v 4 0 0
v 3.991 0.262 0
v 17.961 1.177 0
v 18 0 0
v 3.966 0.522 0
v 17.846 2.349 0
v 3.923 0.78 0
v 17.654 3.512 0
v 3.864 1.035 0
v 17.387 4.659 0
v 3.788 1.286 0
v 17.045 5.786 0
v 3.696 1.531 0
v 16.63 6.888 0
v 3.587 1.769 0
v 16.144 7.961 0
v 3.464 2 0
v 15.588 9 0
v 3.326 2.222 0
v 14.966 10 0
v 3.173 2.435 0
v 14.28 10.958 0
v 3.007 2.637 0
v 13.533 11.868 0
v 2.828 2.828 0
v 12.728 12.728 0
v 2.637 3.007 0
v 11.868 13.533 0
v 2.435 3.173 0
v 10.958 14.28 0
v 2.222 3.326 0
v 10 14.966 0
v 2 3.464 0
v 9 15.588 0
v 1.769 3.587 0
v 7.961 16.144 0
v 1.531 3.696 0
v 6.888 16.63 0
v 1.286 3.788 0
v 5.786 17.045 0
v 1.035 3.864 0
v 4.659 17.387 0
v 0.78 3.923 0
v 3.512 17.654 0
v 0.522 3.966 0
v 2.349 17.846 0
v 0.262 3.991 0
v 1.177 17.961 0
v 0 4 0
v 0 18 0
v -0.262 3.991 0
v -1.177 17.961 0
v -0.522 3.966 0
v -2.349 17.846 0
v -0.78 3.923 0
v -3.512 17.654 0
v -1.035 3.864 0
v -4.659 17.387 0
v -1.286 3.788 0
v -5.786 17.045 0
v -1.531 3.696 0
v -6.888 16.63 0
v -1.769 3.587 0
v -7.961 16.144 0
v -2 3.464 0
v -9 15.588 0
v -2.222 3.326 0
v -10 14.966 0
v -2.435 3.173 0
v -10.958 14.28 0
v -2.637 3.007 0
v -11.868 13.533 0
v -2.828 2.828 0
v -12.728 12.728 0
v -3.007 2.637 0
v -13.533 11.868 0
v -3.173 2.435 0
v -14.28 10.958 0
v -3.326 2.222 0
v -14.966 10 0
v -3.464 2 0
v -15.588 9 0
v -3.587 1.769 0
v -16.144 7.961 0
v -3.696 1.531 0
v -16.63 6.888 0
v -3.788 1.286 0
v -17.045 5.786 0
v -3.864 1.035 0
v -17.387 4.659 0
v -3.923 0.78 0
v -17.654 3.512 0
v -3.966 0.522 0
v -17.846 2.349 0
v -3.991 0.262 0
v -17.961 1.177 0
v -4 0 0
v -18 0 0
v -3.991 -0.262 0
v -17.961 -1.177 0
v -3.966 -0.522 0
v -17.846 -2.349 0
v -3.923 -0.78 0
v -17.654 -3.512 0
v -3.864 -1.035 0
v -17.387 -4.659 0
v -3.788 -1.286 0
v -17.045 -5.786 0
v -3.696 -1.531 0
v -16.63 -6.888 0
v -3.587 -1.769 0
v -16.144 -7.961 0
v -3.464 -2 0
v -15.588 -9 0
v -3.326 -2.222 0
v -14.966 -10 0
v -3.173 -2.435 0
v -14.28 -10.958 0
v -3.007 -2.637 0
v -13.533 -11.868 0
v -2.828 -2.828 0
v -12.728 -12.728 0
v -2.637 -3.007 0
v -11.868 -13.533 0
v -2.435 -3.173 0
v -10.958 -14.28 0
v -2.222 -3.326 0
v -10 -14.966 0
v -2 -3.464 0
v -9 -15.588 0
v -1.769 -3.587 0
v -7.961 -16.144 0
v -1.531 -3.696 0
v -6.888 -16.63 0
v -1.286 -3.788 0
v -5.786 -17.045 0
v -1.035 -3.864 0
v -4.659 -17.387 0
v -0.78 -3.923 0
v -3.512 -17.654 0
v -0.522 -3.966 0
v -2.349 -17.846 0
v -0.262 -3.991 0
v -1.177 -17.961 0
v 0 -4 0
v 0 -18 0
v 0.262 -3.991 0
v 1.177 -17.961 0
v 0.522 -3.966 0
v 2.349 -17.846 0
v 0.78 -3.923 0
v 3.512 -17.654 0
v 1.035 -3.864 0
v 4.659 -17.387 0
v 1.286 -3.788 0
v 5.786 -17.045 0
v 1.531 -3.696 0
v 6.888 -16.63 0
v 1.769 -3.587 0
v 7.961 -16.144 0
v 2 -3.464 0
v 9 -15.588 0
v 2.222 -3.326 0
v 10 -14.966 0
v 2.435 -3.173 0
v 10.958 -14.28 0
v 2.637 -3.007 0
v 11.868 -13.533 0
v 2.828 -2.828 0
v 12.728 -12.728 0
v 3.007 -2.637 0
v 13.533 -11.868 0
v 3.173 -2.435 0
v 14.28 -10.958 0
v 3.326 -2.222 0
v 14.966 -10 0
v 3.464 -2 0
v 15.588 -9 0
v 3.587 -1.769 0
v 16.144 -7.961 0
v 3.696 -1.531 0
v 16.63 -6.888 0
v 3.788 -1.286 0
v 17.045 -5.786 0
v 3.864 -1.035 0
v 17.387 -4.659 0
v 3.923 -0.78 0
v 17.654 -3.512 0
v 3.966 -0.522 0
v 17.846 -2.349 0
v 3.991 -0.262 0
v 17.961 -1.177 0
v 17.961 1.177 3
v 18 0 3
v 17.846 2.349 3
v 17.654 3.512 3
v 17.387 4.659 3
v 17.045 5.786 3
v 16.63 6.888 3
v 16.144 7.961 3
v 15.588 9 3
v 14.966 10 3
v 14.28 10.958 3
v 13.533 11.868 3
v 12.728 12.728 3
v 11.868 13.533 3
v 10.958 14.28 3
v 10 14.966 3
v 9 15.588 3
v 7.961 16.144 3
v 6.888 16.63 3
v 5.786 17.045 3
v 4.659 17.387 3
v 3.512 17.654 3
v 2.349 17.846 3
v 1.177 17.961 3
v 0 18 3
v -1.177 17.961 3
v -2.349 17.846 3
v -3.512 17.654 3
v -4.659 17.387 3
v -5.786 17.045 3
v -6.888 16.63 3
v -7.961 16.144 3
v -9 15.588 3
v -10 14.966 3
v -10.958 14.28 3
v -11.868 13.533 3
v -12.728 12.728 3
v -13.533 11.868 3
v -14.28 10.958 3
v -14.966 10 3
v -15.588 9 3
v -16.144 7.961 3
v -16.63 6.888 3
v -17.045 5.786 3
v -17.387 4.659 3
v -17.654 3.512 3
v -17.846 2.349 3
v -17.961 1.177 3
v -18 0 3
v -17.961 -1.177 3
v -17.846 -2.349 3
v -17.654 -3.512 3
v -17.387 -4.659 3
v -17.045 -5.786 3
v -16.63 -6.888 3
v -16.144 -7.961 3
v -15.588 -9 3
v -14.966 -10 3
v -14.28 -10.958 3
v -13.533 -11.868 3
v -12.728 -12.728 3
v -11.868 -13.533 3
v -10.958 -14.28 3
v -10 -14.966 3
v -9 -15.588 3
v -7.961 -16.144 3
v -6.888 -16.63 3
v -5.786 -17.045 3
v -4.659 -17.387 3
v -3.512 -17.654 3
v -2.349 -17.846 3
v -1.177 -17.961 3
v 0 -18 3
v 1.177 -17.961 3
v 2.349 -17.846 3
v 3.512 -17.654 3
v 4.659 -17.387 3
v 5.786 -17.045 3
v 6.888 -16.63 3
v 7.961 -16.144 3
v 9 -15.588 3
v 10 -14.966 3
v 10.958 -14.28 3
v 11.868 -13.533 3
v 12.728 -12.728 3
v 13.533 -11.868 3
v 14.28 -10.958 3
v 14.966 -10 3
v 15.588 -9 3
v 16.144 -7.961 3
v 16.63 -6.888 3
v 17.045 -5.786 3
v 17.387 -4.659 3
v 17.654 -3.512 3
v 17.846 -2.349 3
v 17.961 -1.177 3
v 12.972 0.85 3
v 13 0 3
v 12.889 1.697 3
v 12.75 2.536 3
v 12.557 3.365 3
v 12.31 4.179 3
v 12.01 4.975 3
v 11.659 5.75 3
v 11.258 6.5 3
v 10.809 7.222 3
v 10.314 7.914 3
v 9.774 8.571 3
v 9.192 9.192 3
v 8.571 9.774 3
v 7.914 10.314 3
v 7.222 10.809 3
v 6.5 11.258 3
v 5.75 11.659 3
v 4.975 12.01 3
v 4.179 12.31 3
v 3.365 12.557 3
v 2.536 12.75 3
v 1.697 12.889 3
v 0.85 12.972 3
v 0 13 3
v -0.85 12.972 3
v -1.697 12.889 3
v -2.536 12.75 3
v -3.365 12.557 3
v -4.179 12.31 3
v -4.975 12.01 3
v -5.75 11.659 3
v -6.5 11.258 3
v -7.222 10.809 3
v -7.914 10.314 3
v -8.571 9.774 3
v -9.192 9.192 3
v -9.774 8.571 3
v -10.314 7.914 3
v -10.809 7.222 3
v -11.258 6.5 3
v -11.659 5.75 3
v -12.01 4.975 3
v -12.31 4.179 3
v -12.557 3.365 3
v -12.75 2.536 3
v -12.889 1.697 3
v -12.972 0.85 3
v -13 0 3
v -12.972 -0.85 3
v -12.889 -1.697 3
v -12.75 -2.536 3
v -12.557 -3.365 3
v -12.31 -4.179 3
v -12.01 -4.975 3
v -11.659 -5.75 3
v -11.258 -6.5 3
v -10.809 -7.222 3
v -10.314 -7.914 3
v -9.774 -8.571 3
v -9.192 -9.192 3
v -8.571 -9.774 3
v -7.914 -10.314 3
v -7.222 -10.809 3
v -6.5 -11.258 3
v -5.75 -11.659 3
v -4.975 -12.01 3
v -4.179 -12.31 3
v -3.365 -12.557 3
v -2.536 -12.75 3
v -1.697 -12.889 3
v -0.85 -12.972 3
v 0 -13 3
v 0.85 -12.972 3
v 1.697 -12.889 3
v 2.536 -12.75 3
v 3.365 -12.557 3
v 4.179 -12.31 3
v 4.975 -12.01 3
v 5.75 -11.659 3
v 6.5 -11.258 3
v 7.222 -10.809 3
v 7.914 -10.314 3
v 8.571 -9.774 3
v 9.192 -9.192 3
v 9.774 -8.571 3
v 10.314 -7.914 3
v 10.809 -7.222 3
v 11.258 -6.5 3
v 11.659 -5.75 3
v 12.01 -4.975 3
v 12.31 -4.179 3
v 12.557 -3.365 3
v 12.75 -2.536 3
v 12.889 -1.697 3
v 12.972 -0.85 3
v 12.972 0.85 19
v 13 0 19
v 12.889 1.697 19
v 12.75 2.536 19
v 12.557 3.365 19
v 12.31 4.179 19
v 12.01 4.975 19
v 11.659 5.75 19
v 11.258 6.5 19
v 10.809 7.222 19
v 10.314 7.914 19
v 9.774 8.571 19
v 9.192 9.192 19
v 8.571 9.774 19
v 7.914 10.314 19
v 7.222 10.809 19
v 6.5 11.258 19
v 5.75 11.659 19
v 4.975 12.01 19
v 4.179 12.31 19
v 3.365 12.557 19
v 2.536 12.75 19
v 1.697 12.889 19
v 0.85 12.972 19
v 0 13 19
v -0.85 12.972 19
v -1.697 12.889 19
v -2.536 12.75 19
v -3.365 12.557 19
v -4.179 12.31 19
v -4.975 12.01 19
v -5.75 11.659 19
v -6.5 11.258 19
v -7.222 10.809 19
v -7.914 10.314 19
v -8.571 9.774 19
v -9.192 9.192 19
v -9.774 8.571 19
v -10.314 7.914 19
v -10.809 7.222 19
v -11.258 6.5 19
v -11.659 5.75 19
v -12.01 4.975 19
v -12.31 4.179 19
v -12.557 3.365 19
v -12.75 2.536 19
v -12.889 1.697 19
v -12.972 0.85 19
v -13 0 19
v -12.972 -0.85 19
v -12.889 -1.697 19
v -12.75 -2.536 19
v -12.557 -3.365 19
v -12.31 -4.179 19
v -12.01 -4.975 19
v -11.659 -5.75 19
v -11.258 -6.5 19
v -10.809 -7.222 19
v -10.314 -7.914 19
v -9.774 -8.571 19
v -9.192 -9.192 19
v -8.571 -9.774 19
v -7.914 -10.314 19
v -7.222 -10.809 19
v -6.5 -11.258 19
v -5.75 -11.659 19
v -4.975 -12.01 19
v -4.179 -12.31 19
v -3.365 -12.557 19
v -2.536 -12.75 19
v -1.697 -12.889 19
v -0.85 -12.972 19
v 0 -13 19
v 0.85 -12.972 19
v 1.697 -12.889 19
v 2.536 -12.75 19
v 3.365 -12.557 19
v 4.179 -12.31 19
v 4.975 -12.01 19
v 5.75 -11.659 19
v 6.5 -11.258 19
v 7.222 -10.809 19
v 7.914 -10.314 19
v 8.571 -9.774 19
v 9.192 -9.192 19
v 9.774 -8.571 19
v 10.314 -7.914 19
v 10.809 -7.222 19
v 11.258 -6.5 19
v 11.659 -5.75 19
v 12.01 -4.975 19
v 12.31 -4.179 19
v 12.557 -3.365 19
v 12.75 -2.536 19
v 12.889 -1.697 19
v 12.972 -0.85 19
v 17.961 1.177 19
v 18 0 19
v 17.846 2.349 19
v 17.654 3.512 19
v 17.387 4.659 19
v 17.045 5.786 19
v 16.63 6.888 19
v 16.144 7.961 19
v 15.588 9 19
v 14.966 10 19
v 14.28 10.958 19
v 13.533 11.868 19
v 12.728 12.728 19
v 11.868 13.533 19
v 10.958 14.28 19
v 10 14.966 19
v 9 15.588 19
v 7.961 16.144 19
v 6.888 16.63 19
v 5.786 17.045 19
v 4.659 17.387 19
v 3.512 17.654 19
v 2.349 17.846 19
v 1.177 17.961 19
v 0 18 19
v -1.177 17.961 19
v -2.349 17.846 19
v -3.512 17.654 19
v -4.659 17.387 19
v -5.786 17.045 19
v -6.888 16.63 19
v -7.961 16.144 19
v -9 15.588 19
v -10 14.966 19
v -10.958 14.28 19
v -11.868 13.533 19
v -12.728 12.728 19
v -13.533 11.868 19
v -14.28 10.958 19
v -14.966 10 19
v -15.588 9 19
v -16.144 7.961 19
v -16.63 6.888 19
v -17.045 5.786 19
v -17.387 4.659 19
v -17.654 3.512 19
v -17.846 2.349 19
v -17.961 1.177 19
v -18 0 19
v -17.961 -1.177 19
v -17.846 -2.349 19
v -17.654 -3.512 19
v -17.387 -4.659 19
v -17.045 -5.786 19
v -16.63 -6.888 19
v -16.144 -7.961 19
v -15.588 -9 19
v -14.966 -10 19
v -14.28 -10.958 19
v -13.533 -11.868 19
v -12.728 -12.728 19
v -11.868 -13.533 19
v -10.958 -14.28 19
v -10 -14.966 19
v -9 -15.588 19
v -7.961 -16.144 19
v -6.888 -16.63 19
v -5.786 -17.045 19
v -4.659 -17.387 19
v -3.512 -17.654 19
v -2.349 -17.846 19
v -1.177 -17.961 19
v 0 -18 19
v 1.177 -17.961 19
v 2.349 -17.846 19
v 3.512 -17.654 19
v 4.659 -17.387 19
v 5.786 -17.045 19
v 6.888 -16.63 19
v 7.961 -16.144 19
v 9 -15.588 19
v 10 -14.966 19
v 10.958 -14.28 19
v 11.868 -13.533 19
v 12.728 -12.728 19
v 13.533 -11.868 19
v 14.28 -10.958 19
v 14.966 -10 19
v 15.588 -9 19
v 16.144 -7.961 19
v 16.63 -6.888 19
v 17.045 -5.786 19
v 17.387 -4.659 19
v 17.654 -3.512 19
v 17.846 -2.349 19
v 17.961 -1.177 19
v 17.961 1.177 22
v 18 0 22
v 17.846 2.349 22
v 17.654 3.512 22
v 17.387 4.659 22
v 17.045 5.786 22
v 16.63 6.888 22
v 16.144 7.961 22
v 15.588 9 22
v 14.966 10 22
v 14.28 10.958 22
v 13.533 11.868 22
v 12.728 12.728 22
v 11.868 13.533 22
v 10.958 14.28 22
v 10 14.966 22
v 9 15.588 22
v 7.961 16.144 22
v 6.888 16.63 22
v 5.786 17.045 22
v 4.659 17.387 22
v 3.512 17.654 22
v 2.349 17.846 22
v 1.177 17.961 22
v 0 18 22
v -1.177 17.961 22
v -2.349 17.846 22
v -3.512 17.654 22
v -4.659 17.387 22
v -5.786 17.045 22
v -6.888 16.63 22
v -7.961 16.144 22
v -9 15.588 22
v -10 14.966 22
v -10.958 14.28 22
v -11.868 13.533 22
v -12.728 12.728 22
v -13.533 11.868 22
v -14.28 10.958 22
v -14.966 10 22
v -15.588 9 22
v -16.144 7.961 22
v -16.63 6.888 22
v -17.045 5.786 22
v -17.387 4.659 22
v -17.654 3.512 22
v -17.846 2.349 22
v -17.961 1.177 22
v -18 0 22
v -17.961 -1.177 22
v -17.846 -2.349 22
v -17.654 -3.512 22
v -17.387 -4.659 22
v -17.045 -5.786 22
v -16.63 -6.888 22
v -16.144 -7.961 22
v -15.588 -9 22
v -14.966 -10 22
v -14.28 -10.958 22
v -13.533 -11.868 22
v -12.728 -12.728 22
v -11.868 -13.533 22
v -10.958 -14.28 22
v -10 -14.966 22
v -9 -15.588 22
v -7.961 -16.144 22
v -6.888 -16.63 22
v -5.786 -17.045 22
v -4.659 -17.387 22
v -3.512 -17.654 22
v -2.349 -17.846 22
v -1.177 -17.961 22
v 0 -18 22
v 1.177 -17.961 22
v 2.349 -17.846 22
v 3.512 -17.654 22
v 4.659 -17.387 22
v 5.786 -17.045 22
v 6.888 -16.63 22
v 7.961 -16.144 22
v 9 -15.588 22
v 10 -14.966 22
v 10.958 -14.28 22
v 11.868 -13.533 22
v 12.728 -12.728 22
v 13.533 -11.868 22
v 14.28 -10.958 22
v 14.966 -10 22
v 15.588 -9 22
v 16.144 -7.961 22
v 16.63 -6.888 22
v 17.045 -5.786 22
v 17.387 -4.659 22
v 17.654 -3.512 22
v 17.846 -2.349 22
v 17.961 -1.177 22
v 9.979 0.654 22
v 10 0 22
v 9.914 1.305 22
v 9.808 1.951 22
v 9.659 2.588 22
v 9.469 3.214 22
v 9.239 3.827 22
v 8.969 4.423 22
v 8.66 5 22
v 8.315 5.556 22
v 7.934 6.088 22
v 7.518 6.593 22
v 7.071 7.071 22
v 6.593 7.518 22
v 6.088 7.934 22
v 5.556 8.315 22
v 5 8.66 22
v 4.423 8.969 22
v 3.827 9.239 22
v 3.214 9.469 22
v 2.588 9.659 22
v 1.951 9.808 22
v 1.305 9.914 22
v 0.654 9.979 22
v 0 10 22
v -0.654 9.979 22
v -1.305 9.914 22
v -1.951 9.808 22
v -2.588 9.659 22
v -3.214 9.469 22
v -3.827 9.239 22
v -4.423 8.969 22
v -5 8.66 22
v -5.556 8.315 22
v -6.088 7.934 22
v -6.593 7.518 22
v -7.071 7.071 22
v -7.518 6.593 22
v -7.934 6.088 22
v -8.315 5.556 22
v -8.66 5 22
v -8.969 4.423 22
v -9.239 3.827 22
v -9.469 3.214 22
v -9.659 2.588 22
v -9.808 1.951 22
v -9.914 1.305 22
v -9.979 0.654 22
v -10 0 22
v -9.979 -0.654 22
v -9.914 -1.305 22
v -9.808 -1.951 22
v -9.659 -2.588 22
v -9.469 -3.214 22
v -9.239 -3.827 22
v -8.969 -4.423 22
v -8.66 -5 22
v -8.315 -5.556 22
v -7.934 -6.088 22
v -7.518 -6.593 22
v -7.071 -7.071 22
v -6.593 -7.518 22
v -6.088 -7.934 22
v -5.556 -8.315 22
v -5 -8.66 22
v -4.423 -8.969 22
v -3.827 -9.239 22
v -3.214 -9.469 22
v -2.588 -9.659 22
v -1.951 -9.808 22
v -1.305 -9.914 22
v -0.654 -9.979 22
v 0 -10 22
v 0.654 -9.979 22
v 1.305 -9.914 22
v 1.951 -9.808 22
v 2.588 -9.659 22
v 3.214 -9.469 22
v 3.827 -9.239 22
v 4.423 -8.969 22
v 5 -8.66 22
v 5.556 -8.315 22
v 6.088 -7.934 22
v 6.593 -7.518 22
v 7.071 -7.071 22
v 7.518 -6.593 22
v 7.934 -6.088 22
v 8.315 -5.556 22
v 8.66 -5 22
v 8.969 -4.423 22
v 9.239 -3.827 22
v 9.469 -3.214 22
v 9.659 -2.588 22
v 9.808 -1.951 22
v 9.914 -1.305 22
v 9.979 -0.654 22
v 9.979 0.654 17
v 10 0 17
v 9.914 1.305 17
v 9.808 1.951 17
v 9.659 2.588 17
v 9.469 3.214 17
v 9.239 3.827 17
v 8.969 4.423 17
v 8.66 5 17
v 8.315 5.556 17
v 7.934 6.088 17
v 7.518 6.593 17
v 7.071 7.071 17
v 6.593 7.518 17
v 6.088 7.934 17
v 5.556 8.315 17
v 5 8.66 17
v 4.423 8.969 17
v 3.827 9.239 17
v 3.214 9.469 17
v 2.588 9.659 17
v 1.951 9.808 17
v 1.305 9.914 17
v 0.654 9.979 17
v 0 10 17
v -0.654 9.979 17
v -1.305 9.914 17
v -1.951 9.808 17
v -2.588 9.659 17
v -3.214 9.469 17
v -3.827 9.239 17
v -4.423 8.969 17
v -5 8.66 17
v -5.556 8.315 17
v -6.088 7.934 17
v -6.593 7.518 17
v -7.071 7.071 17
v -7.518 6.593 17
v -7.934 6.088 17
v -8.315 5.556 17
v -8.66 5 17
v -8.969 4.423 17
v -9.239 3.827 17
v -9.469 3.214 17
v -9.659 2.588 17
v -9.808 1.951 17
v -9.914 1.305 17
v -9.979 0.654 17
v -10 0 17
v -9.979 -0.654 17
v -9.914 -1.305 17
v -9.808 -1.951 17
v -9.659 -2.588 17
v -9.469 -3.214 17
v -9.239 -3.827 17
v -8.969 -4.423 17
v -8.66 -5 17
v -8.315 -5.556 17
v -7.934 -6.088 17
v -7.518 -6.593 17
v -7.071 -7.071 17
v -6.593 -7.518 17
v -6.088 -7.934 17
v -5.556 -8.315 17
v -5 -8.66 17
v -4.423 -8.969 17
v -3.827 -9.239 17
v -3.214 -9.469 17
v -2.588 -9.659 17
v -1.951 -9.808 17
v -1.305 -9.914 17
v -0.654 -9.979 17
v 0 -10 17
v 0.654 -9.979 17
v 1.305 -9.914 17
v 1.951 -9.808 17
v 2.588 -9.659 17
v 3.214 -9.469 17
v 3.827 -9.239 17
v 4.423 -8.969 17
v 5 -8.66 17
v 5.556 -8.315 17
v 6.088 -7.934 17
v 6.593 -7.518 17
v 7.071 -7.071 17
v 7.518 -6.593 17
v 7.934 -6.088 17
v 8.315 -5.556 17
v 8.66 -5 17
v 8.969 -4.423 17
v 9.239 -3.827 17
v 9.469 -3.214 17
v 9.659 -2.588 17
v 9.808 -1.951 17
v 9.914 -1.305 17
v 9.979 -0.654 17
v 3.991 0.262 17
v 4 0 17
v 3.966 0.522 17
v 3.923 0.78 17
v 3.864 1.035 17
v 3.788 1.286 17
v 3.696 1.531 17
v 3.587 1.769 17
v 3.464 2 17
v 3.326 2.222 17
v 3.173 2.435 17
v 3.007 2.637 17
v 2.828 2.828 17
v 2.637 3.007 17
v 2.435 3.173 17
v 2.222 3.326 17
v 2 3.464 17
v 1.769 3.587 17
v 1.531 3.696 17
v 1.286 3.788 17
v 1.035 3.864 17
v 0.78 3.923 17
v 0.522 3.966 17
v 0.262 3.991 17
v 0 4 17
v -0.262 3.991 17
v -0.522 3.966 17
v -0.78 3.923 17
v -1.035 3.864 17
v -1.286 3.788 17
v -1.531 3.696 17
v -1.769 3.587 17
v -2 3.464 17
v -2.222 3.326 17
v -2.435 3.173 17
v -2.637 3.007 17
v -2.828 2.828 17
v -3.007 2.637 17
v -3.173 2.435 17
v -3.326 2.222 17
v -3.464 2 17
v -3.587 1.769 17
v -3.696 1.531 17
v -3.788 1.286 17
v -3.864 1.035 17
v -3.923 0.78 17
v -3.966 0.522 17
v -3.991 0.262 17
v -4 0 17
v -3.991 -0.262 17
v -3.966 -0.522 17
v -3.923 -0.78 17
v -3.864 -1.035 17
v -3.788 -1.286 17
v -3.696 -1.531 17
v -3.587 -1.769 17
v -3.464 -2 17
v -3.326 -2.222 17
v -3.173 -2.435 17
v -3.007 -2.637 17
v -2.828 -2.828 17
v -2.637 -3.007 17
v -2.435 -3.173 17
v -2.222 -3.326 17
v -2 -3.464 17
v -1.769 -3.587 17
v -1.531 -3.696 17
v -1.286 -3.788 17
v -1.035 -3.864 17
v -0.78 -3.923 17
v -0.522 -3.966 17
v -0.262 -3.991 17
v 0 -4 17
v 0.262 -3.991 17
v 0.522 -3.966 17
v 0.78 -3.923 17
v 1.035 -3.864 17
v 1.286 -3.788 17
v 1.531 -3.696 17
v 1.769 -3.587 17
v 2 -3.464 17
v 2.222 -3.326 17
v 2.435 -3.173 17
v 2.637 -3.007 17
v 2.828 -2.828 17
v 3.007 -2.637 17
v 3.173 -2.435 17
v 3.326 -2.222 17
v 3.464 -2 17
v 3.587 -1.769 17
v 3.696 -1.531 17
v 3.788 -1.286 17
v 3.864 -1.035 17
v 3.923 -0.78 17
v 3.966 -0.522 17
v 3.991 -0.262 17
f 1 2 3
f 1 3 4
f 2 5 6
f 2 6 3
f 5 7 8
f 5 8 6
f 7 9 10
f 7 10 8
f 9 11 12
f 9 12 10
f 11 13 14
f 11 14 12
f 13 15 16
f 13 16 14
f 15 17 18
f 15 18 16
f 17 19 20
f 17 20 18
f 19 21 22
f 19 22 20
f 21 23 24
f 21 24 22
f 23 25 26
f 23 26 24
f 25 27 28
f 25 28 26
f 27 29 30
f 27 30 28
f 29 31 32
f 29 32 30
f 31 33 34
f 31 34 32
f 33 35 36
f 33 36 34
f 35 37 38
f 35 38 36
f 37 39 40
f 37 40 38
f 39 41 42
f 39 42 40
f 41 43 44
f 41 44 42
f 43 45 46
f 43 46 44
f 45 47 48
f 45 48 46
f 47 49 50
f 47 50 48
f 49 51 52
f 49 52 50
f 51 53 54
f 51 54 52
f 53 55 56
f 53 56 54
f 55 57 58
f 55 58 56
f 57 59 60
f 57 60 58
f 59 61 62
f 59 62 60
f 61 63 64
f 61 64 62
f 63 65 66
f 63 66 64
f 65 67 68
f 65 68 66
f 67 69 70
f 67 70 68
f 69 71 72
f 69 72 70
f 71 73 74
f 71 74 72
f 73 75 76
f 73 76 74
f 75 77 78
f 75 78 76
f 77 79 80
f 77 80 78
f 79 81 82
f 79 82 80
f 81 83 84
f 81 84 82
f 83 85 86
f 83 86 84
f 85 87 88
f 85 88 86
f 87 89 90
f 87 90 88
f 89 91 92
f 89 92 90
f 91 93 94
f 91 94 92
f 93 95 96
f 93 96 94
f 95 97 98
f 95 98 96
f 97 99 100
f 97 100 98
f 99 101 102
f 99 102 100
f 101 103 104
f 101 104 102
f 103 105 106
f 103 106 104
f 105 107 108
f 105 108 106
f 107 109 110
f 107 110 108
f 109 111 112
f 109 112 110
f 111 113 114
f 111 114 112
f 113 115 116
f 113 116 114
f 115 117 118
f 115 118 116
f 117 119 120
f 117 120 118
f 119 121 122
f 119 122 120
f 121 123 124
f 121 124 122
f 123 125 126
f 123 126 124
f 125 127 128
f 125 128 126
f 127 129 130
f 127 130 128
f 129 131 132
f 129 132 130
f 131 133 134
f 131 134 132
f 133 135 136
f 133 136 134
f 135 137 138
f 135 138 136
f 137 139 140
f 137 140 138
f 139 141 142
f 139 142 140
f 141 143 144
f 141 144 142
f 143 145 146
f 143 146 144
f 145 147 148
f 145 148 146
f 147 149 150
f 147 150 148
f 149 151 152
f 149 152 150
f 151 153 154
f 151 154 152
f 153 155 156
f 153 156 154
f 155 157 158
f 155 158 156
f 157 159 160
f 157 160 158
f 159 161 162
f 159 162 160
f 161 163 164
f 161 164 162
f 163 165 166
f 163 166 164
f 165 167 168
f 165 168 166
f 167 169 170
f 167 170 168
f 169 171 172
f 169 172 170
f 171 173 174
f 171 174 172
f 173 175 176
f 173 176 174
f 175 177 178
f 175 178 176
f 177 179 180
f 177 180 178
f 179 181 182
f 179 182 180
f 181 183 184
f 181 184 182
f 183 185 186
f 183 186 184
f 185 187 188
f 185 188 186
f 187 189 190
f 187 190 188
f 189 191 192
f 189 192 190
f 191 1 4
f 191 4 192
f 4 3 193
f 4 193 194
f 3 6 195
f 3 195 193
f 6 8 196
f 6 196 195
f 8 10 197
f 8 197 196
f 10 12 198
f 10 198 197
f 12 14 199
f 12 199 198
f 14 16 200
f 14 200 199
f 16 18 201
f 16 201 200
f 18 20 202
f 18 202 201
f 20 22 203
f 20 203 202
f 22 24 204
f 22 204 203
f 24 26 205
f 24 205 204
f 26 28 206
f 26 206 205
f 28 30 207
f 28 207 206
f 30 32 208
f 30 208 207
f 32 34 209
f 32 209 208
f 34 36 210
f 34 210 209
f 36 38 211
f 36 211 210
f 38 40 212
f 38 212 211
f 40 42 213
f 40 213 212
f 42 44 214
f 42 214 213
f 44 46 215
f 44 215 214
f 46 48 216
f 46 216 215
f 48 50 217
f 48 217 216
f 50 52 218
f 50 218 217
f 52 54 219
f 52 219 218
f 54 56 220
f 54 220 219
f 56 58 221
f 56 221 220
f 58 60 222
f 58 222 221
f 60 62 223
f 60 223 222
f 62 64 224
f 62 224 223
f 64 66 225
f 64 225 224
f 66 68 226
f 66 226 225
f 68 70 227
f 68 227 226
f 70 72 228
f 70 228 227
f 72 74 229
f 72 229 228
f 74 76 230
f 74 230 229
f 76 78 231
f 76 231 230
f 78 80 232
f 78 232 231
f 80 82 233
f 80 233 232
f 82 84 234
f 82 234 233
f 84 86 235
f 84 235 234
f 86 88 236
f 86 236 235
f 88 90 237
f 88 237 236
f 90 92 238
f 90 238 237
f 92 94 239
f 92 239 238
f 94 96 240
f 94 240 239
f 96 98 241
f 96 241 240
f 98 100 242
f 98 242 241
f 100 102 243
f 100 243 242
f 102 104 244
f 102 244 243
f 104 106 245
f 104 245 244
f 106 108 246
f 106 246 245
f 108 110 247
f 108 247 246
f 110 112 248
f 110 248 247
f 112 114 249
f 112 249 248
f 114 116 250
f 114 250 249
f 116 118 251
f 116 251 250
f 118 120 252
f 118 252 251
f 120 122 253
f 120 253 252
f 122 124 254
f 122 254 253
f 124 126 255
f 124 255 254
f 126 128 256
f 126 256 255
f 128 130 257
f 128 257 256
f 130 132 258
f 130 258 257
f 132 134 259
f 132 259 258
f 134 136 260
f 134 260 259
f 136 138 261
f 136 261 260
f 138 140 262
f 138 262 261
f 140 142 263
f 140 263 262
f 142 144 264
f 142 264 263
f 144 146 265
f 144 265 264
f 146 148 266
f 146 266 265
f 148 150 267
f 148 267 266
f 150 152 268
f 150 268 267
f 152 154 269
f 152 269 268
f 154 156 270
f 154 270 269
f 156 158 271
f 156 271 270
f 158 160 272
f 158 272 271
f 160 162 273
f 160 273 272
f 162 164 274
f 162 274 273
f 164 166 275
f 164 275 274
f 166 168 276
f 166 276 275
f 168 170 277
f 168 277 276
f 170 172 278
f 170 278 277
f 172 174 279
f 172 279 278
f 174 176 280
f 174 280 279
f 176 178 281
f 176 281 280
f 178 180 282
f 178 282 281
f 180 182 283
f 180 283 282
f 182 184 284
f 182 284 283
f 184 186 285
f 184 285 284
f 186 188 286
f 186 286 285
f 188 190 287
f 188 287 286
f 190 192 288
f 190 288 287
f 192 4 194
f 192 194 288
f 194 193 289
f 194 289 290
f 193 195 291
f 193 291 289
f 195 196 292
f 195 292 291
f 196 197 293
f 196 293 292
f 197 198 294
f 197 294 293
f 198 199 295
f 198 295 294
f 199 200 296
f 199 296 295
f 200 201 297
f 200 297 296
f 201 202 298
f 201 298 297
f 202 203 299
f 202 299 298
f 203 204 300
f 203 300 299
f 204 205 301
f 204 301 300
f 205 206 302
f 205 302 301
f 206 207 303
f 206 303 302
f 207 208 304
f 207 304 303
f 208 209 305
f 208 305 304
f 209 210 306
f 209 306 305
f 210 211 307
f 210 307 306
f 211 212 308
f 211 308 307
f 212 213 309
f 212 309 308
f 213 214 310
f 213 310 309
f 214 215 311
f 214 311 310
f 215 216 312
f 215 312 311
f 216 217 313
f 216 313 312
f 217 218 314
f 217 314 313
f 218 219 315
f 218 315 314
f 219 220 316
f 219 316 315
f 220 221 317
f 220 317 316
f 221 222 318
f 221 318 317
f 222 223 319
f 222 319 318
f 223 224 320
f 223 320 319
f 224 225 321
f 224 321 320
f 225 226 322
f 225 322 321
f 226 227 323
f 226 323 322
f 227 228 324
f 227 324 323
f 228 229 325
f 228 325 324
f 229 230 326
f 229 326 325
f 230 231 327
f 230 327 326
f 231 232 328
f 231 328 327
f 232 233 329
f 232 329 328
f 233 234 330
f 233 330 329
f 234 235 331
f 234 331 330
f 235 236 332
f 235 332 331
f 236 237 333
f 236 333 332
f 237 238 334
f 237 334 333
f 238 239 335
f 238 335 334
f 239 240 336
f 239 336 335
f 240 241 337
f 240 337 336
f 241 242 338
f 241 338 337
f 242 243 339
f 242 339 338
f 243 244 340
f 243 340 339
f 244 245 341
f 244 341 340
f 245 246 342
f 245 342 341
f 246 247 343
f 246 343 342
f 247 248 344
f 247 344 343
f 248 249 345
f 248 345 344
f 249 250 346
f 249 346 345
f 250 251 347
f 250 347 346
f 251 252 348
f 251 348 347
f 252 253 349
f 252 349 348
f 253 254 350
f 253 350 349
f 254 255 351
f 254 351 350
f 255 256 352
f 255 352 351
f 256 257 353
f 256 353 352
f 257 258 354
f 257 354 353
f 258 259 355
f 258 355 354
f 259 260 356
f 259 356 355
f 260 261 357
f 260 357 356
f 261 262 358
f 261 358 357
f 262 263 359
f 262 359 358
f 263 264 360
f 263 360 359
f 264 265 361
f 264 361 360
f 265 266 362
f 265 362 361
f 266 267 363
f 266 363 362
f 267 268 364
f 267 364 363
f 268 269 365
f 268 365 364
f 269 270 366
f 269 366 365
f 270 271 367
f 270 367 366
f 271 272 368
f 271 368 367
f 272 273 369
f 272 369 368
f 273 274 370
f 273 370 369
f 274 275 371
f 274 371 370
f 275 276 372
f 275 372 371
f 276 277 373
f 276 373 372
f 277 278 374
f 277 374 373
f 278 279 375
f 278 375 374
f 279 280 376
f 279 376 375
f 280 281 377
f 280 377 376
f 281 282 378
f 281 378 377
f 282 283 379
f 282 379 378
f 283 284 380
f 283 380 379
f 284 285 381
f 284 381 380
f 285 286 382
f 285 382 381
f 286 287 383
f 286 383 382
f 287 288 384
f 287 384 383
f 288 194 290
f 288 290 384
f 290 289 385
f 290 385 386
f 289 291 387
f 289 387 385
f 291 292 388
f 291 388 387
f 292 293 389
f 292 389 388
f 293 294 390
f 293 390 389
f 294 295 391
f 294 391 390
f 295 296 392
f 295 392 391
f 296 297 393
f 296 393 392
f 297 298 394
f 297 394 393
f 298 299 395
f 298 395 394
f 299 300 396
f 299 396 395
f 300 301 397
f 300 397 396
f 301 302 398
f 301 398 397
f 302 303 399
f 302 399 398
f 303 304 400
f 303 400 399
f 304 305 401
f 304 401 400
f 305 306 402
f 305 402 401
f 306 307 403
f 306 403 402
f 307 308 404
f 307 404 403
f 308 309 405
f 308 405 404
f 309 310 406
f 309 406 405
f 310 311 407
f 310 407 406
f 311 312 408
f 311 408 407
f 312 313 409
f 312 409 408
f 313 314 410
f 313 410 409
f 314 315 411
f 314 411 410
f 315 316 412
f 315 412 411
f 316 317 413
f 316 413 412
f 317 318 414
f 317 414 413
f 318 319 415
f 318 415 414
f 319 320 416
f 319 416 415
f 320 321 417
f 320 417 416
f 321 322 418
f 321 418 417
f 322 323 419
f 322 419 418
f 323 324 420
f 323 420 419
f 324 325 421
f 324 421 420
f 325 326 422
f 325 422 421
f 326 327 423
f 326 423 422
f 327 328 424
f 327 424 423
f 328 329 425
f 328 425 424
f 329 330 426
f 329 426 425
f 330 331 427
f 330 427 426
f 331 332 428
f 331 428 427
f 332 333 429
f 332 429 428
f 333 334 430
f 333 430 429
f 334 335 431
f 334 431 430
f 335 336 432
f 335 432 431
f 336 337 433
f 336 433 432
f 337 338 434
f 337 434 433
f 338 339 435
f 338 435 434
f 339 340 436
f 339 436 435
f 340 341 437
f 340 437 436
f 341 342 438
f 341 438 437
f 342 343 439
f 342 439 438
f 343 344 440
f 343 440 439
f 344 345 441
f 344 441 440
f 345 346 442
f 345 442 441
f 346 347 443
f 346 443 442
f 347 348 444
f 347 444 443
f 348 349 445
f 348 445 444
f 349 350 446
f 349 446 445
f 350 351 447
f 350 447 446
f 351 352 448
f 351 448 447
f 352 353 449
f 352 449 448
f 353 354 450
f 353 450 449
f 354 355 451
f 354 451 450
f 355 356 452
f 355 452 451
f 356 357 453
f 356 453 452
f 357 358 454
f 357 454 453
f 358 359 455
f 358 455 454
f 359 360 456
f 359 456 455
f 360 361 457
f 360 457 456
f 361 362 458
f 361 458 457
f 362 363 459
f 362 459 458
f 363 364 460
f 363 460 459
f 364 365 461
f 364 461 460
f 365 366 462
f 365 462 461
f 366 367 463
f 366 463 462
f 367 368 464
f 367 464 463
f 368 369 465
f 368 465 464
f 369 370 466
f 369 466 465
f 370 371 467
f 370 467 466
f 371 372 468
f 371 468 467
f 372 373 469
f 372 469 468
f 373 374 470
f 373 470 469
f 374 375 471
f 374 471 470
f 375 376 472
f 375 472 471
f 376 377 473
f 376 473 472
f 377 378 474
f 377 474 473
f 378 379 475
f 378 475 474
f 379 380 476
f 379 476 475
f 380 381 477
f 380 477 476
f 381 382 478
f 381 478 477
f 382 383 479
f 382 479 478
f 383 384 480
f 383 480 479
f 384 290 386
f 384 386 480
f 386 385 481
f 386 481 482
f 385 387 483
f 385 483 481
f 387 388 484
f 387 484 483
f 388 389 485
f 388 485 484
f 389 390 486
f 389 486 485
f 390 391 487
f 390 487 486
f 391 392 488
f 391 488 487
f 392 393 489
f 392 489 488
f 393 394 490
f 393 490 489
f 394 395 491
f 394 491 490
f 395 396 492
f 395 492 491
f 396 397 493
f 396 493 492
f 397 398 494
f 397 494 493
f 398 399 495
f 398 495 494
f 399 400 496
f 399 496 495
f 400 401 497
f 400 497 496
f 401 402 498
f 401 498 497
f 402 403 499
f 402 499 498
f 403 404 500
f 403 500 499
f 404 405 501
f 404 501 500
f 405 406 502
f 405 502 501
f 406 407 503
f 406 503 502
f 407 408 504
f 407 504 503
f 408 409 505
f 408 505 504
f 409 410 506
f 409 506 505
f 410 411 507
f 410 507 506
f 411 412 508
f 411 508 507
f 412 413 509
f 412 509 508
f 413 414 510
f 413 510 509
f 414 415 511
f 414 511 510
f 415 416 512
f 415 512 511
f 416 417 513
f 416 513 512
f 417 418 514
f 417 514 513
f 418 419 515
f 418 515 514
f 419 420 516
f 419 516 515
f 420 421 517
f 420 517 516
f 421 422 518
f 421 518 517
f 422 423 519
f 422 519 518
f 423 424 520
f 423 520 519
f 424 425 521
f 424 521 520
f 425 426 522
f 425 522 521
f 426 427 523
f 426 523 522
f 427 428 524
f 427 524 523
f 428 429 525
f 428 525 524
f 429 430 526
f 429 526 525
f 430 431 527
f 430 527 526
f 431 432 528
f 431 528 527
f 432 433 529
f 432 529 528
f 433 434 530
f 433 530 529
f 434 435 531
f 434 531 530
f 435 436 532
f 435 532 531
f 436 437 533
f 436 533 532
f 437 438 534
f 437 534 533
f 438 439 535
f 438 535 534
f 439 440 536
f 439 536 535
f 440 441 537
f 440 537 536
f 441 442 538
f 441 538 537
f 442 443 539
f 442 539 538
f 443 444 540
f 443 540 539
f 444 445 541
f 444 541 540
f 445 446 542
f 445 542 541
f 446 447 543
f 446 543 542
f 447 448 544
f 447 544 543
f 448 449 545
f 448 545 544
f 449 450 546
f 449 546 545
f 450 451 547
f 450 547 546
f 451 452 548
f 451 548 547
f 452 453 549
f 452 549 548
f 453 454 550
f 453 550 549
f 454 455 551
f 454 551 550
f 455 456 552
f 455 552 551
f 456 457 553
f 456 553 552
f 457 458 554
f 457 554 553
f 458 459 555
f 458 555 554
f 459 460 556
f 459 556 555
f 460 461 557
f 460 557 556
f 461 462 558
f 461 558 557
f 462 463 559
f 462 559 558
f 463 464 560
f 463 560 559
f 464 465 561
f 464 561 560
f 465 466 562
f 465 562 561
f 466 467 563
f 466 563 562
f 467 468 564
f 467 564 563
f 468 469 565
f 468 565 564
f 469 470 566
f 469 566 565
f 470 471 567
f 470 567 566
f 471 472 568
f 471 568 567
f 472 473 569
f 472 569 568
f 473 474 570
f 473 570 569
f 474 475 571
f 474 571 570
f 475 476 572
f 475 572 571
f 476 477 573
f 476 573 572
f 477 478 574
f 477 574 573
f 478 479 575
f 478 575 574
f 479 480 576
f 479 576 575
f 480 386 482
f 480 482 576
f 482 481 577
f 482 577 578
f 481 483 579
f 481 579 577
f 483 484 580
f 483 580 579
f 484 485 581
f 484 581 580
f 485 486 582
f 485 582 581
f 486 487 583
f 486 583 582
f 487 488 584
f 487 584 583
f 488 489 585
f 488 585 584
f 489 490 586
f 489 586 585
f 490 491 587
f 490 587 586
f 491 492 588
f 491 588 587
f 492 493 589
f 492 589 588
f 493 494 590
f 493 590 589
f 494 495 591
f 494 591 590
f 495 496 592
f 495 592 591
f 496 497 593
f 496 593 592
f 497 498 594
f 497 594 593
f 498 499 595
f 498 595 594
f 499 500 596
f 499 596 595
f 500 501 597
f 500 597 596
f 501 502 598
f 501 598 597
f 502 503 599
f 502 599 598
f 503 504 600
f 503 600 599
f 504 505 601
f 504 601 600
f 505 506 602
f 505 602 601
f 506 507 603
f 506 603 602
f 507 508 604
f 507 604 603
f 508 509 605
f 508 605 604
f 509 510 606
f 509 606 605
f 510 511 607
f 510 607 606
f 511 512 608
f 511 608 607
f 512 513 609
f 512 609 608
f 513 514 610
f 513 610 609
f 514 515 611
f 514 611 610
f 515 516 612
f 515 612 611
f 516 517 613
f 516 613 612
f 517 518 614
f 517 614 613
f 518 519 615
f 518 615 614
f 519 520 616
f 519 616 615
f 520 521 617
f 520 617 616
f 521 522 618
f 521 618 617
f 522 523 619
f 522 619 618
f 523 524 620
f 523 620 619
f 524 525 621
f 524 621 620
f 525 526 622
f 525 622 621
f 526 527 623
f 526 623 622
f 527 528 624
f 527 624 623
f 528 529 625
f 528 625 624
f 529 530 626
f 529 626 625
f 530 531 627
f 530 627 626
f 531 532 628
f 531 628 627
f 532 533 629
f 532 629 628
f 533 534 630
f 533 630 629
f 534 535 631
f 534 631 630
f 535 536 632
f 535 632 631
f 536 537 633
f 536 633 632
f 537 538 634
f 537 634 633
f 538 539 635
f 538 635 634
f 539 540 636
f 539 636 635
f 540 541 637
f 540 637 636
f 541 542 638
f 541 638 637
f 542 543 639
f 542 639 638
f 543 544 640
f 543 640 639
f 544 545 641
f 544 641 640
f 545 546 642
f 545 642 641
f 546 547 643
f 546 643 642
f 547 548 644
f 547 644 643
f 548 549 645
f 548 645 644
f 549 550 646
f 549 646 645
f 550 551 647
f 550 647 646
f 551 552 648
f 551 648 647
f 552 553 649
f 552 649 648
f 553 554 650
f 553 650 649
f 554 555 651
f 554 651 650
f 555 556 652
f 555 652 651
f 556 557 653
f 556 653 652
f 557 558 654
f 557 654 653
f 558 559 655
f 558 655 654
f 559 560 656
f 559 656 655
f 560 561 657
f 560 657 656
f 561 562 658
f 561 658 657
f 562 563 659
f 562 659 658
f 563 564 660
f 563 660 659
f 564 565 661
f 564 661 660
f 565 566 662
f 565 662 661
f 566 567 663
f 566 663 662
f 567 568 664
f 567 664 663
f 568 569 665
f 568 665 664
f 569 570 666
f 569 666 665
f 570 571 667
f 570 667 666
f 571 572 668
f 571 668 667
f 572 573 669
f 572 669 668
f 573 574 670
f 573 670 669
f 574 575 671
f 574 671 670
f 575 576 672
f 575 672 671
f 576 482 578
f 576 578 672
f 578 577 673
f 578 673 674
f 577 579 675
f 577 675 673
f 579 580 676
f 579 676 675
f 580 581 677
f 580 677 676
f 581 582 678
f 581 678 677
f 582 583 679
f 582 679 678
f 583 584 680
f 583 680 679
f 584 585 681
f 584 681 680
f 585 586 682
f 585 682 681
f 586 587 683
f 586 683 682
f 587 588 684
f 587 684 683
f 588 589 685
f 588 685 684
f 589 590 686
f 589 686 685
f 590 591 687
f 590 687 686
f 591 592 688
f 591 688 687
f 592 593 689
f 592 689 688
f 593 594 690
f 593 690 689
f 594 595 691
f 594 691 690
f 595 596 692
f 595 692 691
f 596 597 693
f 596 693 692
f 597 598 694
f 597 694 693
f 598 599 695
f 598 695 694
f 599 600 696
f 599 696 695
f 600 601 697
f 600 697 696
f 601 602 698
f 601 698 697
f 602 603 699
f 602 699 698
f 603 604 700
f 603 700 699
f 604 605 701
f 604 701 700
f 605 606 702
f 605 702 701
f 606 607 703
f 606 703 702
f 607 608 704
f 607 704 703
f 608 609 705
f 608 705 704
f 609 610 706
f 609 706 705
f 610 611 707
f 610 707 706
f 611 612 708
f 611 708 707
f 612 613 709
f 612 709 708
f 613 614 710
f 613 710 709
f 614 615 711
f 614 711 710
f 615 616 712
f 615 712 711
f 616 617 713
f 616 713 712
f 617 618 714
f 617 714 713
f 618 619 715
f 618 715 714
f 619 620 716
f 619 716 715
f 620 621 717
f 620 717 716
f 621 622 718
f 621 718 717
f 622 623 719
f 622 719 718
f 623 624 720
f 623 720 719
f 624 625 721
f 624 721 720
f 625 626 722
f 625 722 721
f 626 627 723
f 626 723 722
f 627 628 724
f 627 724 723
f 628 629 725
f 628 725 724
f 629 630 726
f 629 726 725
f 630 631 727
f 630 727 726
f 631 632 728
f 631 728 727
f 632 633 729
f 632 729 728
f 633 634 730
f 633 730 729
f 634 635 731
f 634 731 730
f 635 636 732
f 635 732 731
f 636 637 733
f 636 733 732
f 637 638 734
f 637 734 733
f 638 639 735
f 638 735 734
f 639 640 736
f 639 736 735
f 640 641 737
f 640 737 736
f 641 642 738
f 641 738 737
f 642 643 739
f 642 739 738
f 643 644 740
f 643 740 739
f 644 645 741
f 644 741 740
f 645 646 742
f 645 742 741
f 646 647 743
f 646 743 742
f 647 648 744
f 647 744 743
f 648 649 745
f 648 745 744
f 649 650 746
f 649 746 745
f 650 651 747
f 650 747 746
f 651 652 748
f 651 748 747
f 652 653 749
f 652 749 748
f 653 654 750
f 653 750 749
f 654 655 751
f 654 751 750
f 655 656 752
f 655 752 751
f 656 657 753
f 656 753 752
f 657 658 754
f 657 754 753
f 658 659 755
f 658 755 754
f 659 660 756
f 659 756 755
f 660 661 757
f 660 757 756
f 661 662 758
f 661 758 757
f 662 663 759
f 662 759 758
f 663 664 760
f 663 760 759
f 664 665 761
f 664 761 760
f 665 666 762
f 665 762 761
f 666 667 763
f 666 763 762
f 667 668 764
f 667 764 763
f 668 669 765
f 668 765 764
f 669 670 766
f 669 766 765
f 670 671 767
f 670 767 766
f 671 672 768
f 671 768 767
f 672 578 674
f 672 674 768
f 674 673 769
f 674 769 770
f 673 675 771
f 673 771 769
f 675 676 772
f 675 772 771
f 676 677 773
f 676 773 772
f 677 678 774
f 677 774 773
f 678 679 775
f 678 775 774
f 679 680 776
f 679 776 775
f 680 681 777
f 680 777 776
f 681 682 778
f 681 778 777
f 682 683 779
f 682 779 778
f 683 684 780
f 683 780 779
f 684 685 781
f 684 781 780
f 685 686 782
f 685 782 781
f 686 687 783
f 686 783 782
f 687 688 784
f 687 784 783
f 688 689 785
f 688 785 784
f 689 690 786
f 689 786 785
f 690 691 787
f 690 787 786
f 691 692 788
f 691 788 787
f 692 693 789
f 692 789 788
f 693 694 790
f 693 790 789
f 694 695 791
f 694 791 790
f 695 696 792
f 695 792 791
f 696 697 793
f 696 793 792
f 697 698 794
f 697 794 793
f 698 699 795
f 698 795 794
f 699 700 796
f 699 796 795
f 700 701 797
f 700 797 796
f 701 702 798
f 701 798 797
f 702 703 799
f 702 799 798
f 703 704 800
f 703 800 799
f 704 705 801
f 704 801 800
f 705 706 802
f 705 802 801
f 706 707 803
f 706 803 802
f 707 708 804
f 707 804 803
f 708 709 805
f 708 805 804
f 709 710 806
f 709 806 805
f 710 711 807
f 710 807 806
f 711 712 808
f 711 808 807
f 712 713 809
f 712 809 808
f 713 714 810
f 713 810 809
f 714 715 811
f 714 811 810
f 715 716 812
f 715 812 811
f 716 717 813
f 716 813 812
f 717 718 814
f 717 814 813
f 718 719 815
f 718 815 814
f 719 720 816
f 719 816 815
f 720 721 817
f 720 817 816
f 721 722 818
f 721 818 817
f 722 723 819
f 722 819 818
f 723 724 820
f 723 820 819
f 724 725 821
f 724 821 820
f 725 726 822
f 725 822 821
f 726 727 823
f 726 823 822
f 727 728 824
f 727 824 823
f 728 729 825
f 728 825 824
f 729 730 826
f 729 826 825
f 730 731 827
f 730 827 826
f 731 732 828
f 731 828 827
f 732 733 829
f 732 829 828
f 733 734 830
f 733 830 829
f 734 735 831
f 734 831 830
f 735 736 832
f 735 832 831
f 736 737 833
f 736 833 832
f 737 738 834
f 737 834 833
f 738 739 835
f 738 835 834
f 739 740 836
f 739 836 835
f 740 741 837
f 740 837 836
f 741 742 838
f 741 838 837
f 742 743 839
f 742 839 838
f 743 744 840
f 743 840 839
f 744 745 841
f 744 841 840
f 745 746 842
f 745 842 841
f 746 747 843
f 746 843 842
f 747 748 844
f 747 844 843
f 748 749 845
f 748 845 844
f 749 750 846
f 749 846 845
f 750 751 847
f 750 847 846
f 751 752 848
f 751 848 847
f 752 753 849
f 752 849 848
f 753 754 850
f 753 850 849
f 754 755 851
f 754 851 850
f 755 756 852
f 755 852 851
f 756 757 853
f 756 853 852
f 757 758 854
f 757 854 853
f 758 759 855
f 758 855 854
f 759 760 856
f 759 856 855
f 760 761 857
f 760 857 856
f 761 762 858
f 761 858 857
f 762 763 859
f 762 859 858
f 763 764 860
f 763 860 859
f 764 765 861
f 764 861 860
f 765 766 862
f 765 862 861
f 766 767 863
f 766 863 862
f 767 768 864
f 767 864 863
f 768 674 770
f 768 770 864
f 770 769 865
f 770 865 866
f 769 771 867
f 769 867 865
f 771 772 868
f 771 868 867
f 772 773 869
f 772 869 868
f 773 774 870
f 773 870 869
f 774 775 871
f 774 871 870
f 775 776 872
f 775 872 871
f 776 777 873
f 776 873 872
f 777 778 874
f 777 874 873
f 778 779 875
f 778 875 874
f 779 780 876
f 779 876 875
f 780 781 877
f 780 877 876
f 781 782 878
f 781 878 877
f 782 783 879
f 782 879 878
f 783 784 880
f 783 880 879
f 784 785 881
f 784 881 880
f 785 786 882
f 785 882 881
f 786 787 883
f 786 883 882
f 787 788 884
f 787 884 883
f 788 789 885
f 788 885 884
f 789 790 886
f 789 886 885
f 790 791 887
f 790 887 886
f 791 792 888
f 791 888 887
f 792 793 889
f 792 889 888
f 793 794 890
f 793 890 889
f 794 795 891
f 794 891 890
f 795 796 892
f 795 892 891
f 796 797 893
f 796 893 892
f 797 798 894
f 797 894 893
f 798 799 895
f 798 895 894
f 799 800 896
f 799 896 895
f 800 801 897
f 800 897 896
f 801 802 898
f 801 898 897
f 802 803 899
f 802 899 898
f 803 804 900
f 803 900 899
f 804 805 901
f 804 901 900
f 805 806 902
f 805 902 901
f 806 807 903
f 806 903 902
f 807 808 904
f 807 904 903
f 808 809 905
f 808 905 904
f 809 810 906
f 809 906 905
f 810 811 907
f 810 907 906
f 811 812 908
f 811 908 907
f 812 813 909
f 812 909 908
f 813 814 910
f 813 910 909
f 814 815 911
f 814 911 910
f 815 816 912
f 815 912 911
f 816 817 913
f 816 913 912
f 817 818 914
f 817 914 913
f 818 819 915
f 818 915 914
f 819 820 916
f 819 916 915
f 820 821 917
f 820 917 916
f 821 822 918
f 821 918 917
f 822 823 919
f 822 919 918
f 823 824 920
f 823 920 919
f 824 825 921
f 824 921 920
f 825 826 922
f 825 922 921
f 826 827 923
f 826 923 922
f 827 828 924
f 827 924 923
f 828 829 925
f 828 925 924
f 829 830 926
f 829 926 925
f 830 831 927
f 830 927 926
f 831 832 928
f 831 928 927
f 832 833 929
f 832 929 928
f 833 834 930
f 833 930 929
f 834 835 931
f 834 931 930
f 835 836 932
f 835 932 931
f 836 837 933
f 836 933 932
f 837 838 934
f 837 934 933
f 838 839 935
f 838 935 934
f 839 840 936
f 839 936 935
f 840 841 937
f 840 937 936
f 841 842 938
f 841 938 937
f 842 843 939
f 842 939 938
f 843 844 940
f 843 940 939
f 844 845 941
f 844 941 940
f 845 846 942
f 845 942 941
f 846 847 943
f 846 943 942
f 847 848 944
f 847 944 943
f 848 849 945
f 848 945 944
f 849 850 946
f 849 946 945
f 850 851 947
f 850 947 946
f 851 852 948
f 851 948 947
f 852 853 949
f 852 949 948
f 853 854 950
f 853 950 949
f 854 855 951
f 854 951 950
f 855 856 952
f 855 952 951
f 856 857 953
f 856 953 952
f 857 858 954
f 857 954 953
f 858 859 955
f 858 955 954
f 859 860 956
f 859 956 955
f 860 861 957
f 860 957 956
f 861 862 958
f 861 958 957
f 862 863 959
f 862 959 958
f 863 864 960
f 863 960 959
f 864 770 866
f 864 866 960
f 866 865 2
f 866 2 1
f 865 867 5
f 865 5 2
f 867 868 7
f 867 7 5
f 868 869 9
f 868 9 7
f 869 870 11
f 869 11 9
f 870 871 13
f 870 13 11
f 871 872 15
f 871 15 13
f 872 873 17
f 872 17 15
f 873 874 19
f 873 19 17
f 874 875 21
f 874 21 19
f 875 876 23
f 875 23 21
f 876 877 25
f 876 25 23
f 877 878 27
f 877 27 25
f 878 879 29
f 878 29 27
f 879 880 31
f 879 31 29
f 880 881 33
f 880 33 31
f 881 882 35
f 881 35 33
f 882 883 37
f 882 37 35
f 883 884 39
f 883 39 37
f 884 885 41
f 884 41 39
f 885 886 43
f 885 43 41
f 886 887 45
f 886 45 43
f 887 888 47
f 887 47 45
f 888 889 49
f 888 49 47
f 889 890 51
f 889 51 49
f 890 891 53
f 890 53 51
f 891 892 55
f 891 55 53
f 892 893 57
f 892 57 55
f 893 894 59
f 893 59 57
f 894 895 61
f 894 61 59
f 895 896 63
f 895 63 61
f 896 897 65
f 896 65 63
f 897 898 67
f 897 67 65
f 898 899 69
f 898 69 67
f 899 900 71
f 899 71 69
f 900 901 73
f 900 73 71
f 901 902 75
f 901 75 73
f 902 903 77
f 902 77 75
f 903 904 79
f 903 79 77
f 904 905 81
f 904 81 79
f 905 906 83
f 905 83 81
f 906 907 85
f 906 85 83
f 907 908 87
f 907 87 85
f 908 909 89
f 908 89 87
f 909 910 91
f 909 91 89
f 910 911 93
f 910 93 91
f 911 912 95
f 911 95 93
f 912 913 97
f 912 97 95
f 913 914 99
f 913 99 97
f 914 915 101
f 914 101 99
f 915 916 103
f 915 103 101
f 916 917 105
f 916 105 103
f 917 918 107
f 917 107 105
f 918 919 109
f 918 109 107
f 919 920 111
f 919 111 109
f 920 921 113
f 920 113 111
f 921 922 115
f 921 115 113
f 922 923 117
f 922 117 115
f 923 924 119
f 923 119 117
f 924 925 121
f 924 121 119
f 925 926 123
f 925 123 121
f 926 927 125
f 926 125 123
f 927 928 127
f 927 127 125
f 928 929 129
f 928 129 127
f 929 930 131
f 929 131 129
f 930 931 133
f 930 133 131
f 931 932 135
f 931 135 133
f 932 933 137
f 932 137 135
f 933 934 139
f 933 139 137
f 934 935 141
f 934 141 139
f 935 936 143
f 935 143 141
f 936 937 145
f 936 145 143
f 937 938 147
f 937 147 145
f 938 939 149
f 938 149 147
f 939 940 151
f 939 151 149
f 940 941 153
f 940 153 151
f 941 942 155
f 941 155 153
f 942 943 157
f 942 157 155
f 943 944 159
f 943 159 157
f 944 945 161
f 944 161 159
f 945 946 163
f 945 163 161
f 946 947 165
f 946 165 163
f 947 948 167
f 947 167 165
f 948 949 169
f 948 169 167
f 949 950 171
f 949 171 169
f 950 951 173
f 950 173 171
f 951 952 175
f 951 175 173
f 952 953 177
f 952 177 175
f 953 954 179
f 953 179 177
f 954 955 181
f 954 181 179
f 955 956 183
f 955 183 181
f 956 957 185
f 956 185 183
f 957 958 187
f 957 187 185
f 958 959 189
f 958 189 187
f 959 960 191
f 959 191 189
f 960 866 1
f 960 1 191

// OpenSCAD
// Original MechIntel educational model. CC0-1.0. Units: mm.
// Not a standardized or load-rated component.
$fn=96;
// Section points: [radius, height], mm. Edit to change the profile.
section=[[4, 0], [18, 0], [18, 3], [13, 3], [13, 19], [18, 19], [18, 22], [10, 22], [10, 17], [4, 17]];
rotate_extrude($fn=96) polygon(points=section);
